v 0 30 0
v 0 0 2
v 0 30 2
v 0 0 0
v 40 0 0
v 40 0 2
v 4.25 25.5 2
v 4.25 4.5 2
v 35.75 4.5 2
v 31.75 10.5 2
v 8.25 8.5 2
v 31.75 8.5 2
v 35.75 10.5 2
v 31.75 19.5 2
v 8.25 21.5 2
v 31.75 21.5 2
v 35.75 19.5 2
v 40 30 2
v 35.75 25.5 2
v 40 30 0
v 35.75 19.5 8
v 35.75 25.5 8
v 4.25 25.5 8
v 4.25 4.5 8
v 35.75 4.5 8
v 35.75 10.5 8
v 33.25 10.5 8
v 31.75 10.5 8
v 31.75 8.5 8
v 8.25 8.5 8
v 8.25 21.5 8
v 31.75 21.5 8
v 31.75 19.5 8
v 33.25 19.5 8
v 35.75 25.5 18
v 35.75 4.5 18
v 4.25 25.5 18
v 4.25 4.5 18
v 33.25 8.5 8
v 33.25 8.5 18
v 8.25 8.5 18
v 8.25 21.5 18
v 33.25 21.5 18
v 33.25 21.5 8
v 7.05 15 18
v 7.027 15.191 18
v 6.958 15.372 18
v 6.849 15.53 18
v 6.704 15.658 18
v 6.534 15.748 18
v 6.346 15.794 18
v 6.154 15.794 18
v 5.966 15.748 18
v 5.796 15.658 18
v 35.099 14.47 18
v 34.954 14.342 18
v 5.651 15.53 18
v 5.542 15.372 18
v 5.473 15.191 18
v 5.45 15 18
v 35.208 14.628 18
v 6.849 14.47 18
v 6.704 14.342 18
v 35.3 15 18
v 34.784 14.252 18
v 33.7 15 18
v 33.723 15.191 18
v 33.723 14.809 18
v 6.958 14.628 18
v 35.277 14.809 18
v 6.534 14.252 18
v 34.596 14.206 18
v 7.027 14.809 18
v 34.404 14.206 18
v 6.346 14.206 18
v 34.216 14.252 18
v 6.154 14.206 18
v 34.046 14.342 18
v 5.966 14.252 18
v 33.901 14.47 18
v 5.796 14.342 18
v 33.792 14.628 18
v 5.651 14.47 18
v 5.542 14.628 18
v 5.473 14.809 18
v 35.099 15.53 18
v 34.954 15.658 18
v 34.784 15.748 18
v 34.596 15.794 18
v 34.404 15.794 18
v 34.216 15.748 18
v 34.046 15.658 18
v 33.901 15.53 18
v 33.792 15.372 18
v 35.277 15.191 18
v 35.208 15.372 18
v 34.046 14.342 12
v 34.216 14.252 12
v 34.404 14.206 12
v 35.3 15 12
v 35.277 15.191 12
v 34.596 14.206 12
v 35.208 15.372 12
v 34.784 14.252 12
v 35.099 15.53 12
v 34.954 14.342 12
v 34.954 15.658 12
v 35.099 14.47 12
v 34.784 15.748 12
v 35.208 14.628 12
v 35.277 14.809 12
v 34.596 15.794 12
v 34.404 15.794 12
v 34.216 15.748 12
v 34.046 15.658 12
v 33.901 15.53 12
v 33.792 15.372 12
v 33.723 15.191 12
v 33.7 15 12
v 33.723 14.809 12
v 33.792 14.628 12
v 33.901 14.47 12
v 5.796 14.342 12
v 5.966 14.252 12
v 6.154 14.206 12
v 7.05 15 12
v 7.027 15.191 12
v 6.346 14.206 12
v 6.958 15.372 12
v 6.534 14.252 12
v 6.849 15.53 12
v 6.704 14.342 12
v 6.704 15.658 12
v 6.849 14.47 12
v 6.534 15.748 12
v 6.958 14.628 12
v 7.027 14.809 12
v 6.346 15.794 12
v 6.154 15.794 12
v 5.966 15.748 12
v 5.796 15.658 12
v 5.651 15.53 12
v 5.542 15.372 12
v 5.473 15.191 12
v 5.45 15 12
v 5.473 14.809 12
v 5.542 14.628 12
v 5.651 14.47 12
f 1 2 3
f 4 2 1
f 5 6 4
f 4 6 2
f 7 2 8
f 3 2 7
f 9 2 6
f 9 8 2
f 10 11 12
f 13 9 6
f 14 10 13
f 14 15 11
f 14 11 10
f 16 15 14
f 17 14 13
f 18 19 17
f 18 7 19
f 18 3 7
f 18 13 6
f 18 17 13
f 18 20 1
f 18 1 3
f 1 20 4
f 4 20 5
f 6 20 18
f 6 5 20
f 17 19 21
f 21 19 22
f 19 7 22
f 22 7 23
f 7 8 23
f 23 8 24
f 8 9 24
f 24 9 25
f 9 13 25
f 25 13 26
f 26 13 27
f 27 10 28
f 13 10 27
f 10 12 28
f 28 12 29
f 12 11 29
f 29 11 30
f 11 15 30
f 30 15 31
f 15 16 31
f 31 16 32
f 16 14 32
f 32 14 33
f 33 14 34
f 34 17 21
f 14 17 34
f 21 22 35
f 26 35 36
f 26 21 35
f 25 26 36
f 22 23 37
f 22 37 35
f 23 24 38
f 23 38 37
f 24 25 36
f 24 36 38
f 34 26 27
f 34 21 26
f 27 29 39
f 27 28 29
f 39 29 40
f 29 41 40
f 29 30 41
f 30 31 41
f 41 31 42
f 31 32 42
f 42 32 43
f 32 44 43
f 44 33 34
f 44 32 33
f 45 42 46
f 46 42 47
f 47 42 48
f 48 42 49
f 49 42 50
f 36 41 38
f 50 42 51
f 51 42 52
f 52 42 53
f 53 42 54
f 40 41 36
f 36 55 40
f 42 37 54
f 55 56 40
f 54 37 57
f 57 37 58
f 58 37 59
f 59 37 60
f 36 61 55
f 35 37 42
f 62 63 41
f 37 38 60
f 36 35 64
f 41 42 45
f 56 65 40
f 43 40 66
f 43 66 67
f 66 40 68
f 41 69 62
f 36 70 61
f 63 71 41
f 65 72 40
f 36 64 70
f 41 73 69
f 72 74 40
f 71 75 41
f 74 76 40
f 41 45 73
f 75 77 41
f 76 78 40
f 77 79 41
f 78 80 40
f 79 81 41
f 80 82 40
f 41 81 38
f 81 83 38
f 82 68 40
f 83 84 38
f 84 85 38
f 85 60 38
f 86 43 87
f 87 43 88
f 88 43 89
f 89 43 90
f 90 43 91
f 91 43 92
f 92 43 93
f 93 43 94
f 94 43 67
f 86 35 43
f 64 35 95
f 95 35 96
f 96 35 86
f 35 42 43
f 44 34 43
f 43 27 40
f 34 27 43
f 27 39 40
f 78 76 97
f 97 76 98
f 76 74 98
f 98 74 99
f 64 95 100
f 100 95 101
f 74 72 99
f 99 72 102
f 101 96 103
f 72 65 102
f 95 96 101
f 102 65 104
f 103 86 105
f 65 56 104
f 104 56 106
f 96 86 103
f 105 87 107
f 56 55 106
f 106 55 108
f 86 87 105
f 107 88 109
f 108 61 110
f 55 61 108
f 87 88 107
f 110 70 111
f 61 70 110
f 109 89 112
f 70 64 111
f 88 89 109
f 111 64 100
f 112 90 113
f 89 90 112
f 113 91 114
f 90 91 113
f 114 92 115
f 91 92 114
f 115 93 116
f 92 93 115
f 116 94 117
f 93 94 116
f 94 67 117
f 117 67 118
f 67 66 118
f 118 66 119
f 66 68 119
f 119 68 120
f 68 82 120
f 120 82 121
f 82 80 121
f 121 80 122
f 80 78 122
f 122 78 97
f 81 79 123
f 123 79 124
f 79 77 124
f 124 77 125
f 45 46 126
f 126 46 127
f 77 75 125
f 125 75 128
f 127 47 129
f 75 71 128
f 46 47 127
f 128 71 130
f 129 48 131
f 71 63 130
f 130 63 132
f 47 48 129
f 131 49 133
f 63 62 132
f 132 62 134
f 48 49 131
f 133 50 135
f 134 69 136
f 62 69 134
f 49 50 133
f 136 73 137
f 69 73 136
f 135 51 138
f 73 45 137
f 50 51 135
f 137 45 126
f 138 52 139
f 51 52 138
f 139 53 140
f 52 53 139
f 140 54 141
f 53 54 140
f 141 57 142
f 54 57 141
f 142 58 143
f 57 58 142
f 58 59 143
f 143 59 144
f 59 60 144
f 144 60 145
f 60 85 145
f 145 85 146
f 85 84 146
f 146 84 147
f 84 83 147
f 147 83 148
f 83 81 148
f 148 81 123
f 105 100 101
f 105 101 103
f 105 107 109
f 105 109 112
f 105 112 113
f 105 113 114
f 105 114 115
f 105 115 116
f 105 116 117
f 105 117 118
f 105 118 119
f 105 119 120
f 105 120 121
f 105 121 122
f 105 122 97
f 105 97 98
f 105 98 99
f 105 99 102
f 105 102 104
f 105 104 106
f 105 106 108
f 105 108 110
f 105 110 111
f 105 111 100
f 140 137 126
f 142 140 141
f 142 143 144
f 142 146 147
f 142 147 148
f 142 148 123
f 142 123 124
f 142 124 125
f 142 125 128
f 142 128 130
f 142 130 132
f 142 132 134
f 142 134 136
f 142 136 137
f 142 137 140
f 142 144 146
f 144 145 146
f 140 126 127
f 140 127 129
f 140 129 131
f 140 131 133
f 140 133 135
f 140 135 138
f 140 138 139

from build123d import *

# Parameters (mm, degrees)
BOX_W         = 40
BOX_H         = 30
BOX_DEPTH     = 2
PAD_DEPTH     = 6
SKETCH001_W   = 31.5
SKETCH001_H   = 21
SKETCH001_W_2 = 25
SKETCH001_H_2 = 13
PAD001_DEPTH  = 10
SKETCH002_R   = 0.8
POCKET_DEPTH  = 6


with BuildPart() as part:
    # Box → Box (new body)
    with BuildSketch(Plane.XY):
        with Locations((20, 15)):
            Rectangle(BOX_W, BOX_H)
    extrude(amount=BOX_DEPTH)

    # Sketch (on Face6 of BaseFeature) → Pad (new body)
    with BuildSketch(Plane.XY.offset(2)):
        Polygon((35.75, 19.5), (35.75, 25.5), (4.25, 25.5), (4.25, 4.5), (35.75, 4.5), (35.75, 10.5), (31.75, 10.5), (31.75, 8.5), (8.25, 8.5), (8.25, 21.5), (31.75, 21.5), (31.75, 19.5), align=None)
    extrude(amount=PAD_DEPTH)

    # Sketch001 (on Face19 of Pad) → Pad001 (join)
    with BuildSketch(Plane.XY.offset(8)):
        with Locations((20, 15)):
            Rectangle(SKETCH001_W, SKETCH001_H)
        with Locations((20.75, 15)):
            Rectangle(SKETCH001_W_2, SKETCH001_H_2, mode=Mode.SUBTRACT)
    extrude(amount=PAD001_DEPTH)

    # Sketch002 (on Face29 of Pad001) → Pocket (cut)
    with BuildSketch(Plane.XY.offset(18)):
        with Locations((6.25, 15)):
            Circle(SKETCH002_R)
        with Locations((34.5, 15)):
            Circle(SKETCH002_R)
    extrude(amount=-POCKET_DEPTH, mode=Mode.SUBTRACT)


solid = part.part
